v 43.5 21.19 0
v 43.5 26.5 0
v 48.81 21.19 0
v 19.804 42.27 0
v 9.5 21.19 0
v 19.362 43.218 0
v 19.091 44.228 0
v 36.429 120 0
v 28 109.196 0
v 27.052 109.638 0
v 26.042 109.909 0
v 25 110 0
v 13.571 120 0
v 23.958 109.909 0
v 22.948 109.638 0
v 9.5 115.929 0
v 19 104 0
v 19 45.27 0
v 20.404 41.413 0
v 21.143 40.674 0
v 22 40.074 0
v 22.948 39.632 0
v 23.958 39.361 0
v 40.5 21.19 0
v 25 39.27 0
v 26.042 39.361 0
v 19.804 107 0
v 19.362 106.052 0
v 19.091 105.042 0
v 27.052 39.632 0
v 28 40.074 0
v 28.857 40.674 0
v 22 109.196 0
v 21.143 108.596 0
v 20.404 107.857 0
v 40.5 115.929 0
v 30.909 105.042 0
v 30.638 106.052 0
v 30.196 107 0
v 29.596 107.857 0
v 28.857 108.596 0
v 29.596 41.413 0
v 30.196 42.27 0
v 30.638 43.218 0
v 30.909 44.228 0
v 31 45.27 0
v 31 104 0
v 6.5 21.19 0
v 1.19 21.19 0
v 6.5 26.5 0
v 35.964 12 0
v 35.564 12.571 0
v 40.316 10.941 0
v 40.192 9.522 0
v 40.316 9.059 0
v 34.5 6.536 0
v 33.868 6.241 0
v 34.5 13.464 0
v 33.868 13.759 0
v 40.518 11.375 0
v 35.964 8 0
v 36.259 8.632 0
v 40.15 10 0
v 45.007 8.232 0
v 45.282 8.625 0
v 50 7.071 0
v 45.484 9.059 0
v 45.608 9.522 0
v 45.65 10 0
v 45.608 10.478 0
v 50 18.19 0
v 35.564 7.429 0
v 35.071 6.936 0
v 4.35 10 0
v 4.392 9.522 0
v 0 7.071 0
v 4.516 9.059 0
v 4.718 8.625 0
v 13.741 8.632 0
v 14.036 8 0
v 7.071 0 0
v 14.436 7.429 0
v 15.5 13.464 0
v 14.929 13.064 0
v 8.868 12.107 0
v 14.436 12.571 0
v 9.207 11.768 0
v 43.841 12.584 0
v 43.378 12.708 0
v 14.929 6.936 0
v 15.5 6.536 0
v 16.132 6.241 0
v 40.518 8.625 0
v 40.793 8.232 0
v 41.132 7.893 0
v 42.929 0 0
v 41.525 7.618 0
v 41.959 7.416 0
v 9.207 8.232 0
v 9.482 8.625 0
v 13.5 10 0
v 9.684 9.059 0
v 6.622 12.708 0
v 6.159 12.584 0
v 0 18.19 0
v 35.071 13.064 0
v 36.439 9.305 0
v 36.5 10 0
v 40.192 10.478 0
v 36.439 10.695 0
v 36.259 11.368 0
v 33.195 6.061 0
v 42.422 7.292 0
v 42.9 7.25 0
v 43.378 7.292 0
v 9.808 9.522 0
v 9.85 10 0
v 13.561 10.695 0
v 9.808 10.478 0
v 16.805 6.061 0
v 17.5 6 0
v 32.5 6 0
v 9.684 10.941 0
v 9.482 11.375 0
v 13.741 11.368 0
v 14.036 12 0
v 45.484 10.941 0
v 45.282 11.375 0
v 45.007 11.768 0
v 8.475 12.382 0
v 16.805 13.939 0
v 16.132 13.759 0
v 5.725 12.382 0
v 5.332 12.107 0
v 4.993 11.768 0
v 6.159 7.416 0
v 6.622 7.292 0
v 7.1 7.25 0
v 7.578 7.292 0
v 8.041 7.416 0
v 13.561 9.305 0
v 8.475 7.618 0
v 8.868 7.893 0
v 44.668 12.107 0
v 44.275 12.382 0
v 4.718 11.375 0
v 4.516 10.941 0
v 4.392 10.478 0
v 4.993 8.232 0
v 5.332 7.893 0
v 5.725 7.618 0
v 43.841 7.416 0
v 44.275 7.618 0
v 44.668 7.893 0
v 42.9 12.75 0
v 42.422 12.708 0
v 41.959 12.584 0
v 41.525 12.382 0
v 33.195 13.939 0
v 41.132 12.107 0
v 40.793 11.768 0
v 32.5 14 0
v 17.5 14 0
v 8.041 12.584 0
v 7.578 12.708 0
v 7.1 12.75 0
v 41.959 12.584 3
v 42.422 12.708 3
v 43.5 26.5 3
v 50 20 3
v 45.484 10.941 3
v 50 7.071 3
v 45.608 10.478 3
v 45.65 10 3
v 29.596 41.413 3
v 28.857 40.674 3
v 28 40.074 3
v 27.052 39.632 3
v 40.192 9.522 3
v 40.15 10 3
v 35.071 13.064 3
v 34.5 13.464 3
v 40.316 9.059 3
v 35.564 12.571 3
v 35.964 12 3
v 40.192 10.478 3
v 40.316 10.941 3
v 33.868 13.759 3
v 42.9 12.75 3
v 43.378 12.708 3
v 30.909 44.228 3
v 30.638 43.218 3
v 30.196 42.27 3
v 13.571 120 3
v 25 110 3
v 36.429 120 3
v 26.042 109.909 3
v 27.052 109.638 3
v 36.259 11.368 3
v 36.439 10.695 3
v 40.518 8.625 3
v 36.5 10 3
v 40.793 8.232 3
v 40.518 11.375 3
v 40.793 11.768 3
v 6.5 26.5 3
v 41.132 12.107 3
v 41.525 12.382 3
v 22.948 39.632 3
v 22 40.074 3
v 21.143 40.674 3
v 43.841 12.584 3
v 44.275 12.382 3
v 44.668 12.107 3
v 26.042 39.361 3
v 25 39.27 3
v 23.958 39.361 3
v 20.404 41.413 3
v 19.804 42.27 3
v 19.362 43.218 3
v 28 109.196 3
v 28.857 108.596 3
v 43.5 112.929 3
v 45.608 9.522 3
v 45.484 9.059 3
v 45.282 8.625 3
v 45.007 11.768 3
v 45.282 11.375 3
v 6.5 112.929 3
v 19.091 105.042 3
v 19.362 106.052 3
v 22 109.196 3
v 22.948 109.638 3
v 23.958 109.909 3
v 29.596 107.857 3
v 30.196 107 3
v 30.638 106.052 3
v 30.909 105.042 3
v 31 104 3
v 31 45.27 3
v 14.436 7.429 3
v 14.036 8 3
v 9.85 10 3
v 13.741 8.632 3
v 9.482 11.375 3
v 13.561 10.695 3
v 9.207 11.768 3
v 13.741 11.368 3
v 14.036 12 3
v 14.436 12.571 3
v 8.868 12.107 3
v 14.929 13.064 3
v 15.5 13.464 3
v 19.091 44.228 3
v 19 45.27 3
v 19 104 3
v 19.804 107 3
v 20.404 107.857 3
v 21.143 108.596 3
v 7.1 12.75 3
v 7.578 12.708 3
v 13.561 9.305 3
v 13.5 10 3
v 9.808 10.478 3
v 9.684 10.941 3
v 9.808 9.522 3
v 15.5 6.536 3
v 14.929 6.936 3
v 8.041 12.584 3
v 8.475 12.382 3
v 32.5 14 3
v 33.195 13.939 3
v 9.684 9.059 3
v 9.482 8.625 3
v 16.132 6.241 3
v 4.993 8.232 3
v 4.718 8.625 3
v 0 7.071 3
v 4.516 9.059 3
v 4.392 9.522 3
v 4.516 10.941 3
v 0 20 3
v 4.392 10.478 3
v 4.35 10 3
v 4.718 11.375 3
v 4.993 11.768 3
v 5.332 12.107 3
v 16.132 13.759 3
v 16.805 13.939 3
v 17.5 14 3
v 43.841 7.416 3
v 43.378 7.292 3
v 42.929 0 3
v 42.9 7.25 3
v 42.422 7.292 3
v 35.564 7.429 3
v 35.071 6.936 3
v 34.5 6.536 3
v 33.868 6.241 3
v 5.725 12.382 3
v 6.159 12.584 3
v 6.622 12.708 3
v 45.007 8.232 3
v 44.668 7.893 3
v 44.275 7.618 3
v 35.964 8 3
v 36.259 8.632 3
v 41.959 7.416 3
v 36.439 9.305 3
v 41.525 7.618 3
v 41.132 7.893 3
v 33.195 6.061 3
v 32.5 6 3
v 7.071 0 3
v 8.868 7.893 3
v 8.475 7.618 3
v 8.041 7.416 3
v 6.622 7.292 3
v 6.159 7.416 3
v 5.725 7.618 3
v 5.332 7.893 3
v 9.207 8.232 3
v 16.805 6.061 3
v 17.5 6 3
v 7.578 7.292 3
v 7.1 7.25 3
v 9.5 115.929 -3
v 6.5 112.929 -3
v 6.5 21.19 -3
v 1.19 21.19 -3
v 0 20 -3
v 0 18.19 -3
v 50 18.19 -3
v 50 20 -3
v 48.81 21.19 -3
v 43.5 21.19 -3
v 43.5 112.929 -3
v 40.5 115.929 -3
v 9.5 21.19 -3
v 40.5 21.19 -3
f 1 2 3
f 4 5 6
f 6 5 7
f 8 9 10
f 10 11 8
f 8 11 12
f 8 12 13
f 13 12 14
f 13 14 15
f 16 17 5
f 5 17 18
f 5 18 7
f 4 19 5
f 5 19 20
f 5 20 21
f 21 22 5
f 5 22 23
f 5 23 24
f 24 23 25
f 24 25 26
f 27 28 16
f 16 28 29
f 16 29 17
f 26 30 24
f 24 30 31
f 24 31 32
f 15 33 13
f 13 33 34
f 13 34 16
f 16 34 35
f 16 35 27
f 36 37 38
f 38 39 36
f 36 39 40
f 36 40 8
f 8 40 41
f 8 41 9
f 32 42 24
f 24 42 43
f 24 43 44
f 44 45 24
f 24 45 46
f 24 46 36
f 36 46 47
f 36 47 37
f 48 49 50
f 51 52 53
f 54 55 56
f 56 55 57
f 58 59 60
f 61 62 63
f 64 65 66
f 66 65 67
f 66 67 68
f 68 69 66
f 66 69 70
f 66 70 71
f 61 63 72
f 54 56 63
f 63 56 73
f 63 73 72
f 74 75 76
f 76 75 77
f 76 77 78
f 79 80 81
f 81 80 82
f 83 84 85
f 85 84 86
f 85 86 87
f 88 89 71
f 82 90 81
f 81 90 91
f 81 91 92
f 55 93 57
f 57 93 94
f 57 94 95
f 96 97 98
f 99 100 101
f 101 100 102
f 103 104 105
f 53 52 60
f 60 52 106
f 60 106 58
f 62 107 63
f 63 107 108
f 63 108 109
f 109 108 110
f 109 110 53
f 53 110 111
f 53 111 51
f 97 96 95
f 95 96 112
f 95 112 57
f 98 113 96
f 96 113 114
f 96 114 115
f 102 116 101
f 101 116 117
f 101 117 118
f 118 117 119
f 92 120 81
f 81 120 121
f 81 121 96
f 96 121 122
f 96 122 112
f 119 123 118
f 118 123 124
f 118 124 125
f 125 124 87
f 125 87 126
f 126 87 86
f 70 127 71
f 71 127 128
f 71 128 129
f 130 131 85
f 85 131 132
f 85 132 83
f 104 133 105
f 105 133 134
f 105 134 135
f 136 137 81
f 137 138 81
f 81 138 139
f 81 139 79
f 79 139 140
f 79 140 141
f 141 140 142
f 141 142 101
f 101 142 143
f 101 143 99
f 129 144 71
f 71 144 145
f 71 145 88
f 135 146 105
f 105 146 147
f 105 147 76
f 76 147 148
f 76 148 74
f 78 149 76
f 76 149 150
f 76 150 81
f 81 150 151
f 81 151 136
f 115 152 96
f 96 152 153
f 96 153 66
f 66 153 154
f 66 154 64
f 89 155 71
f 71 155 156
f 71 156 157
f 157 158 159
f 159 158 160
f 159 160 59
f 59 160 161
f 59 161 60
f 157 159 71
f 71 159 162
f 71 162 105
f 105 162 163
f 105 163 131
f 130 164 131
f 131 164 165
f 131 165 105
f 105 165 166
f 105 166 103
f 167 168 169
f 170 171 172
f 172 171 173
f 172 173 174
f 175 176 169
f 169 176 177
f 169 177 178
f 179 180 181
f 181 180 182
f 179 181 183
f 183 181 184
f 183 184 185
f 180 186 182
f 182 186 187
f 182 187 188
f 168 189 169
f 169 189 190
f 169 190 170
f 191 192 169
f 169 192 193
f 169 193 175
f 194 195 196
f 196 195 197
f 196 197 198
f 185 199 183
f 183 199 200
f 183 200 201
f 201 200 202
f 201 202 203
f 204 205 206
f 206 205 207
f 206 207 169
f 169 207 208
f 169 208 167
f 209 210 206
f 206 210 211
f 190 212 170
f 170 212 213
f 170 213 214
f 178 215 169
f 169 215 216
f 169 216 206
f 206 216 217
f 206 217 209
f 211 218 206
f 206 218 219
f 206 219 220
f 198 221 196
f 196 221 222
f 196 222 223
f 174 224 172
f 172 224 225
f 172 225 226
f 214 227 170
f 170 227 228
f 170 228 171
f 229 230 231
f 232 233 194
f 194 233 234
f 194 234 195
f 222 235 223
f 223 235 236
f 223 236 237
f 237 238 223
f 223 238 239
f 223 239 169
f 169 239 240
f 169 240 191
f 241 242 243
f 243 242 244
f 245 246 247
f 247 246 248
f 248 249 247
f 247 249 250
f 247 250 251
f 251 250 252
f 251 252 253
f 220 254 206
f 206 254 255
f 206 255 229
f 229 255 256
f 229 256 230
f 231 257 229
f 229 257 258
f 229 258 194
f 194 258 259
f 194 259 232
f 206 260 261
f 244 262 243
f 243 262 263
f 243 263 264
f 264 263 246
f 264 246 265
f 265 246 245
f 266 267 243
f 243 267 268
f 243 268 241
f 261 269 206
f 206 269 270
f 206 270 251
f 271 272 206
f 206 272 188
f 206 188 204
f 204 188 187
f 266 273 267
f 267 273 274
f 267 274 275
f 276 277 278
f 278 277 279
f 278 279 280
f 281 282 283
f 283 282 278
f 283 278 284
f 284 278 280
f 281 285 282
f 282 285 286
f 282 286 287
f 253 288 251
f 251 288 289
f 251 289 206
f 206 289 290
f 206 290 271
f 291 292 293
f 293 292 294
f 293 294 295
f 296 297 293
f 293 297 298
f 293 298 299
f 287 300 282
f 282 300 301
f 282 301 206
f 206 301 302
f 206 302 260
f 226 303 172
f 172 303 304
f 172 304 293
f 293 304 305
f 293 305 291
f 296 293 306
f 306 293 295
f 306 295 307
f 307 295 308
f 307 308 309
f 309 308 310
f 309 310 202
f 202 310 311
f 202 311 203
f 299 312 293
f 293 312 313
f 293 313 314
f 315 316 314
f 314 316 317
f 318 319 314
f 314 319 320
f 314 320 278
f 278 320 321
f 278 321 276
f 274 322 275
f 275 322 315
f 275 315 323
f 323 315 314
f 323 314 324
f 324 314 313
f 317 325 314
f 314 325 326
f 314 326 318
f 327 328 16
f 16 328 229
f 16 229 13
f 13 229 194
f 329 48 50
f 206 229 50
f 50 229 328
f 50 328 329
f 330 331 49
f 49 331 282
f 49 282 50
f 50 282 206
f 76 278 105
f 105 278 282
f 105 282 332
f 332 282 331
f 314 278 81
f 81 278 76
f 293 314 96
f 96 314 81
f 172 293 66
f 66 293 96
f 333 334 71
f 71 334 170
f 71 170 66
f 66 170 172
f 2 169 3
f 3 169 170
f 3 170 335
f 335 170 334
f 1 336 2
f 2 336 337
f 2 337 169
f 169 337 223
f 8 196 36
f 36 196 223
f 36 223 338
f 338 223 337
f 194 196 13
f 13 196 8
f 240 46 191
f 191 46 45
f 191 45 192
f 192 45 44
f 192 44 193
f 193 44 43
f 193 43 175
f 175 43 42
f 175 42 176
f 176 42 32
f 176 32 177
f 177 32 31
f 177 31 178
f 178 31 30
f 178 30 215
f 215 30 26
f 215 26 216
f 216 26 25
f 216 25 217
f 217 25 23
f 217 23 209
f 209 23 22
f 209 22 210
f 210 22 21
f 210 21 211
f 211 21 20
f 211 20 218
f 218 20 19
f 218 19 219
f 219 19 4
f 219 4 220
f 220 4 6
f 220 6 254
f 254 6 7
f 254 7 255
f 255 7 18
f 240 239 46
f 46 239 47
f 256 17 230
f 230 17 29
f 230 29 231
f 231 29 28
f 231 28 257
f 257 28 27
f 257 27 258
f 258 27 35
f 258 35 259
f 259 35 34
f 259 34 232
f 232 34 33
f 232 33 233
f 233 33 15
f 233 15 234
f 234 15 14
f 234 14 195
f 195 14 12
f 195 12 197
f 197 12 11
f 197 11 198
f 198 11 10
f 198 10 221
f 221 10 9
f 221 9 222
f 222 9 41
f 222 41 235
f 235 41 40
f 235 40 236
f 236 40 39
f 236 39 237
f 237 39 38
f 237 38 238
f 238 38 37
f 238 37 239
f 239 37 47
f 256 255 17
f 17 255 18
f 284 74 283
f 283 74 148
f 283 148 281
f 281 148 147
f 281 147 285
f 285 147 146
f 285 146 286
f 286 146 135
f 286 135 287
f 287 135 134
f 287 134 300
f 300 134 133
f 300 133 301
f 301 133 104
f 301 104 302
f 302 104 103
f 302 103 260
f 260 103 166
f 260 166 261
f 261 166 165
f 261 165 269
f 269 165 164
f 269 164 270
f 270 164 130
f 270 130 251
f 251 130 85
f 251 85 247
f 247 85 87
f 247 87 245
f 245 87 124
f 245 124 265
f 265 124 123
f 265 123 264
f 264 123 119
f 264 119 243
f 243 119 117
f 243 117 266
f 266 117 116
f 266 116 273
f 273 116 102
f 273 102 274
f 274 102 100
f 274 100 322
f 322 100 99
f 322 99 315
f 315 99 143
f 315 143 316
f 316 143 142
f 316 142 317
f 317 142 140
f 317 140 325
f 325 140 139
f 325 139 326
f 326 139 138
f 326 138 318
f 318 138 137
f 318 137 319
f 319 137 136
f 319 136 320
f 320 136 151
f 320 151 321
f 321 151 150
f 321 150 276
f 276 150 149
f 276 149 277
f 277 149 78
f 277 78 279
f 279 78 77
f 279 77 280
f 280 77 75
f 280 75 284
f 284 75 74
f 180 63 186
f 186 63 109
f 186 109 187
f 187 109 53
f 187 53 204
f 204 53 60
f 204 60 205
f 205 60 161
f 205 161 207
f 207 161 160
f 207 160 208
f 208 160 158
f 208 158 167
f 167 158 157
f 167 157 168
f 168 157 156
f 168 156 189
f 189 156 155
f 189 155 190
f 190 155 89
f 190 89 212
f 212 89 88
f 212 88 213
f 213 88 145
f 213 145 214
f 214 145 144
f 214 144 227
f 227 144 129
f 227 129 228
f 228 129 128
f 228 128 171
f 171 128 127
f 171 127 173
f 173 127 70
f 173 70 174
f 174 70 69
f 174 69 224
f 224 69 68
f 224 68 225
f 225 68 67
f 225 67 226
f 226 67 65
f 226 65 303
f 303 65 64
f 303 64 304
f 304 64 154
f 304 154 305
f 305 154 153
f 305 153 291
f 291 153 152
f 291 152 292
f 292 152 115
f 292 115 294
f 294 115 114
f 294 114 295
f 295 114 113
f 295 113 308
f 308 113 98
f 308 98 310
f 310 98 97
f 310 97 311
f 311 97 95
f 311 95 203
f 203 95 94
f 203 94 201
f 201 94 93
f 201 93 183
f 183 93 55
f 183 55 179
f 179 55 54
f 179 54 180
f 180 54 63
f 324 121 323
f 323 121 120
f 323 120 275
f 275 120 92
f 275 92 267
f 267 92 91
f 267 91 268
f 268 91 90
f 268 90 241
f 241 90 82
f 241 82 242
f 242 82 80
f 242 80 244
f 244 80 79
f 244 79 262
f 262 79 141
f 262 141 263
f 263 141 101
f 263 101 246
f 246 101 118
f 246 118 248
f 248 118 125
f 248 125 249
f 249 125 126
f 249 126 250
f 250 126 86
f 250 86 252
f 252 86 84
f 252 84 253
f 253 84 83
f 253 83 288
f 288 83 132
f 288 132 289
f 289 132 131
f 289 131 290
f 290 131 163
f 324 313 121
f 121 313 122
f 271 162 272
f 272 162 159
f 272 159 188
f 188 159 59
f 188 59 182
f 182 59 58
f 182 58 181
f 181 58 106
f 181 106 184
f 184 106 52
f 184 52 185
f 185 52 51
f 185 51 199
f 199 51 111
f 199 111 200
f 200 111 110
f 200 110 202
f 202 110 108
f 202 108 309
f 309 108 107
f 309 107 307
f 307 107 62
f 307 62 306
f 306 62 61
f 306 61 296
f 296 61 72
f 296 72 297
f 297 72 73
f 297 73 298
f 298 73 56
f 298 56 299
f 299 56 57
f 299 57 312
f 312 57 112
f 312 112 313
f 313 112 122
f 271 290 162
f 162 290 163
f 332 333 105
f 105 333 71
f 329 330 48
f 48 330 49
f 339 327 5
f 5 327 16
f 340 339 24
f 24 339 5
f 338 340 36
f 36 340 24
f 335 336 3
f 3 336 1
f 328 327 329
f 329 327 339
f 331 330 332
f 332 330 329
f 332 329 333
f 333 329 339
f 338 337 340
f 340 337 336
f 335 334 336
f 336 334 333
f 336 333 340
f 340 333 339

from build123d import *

# Parameters (mm, degrees)
SKETCH1_R           = 2.75
BOSS_EXTRUDE1_DEPTH = 3
BOSS_EXTRUDE2_DEPTH = 3


with BuildPart() as part:
    # Sketch1 → Boss-Extrude1 (new body)
    with BuildSketch(Plane.XY):
        Polygon((7.071067812, 0), (42.928932188, 0), (50, 7.071067812), (50, 20), (43.5, 26.5), (43.5, 112.928932188), (36.428932188, 120), (13.571067812, 120), (6.5, 112.928932188), (6.5, 26.5), (0, 20), (0, 7.071067812), align=None)
        with Locations((7.1, 10)):
            Circle(SKETCH1_R, mode=Mode.SUBTRACT)
        with Locations(Location((42.9, 10, 0), (0, 0, 180))):
            Circle(SKETCH1_R, mode=Mode.SUBTRACT)
        with BuildLine():
            Line((19, 45.27), (19, 104))
            ThreePointArc((19, 104), (25, 110), (31, 104))
            Line((31, 104), (31, 45.27))
            ThreePointArc((31, 45.27), (25, 39.27), (19, 45.27))
        make_face(mode=Mode.SUBTRACT)
        with BuildLine():
            Line((17.5, 14), (32.5, 14))
            ThreePointArc((32.5, 14), (36.5, 10), (32.5, 6))
            Line((32.5, 6), (17.5, 6))
            ThreePointArc((17.5, 6), (13.5, 10), (17.5, 14))
        make_face(mode=Mode.SUBTRACT)
    extrude(amount=BOSS_EXTRUDE1_DEPTH)

    # Sketch2 → Boss-Extrude2 (add)
    with BuildSketch(Plane(origin=(0, 0, 0), x_dir=(-1, 0, 0), z_dir=(0, 0, -1))):
        Polygon((-50, 18.19), (0, 18.19), (0, 20), (-1.19, 21.19), (-6.5, 21.19), (-6.5, 112.928932188), (-9.5, 115.928932188), (-9.5, 21.19), (-40.5, 21.19), (-40.5, 115.928932188), (-43.5, 112.928932188), (-43.5, 21.19), (-48.81, 21.19), (-50, 20), align=None)
    extrude(amount=BOSS_EXTRUDE2_DEPTH)


solid = part.part
